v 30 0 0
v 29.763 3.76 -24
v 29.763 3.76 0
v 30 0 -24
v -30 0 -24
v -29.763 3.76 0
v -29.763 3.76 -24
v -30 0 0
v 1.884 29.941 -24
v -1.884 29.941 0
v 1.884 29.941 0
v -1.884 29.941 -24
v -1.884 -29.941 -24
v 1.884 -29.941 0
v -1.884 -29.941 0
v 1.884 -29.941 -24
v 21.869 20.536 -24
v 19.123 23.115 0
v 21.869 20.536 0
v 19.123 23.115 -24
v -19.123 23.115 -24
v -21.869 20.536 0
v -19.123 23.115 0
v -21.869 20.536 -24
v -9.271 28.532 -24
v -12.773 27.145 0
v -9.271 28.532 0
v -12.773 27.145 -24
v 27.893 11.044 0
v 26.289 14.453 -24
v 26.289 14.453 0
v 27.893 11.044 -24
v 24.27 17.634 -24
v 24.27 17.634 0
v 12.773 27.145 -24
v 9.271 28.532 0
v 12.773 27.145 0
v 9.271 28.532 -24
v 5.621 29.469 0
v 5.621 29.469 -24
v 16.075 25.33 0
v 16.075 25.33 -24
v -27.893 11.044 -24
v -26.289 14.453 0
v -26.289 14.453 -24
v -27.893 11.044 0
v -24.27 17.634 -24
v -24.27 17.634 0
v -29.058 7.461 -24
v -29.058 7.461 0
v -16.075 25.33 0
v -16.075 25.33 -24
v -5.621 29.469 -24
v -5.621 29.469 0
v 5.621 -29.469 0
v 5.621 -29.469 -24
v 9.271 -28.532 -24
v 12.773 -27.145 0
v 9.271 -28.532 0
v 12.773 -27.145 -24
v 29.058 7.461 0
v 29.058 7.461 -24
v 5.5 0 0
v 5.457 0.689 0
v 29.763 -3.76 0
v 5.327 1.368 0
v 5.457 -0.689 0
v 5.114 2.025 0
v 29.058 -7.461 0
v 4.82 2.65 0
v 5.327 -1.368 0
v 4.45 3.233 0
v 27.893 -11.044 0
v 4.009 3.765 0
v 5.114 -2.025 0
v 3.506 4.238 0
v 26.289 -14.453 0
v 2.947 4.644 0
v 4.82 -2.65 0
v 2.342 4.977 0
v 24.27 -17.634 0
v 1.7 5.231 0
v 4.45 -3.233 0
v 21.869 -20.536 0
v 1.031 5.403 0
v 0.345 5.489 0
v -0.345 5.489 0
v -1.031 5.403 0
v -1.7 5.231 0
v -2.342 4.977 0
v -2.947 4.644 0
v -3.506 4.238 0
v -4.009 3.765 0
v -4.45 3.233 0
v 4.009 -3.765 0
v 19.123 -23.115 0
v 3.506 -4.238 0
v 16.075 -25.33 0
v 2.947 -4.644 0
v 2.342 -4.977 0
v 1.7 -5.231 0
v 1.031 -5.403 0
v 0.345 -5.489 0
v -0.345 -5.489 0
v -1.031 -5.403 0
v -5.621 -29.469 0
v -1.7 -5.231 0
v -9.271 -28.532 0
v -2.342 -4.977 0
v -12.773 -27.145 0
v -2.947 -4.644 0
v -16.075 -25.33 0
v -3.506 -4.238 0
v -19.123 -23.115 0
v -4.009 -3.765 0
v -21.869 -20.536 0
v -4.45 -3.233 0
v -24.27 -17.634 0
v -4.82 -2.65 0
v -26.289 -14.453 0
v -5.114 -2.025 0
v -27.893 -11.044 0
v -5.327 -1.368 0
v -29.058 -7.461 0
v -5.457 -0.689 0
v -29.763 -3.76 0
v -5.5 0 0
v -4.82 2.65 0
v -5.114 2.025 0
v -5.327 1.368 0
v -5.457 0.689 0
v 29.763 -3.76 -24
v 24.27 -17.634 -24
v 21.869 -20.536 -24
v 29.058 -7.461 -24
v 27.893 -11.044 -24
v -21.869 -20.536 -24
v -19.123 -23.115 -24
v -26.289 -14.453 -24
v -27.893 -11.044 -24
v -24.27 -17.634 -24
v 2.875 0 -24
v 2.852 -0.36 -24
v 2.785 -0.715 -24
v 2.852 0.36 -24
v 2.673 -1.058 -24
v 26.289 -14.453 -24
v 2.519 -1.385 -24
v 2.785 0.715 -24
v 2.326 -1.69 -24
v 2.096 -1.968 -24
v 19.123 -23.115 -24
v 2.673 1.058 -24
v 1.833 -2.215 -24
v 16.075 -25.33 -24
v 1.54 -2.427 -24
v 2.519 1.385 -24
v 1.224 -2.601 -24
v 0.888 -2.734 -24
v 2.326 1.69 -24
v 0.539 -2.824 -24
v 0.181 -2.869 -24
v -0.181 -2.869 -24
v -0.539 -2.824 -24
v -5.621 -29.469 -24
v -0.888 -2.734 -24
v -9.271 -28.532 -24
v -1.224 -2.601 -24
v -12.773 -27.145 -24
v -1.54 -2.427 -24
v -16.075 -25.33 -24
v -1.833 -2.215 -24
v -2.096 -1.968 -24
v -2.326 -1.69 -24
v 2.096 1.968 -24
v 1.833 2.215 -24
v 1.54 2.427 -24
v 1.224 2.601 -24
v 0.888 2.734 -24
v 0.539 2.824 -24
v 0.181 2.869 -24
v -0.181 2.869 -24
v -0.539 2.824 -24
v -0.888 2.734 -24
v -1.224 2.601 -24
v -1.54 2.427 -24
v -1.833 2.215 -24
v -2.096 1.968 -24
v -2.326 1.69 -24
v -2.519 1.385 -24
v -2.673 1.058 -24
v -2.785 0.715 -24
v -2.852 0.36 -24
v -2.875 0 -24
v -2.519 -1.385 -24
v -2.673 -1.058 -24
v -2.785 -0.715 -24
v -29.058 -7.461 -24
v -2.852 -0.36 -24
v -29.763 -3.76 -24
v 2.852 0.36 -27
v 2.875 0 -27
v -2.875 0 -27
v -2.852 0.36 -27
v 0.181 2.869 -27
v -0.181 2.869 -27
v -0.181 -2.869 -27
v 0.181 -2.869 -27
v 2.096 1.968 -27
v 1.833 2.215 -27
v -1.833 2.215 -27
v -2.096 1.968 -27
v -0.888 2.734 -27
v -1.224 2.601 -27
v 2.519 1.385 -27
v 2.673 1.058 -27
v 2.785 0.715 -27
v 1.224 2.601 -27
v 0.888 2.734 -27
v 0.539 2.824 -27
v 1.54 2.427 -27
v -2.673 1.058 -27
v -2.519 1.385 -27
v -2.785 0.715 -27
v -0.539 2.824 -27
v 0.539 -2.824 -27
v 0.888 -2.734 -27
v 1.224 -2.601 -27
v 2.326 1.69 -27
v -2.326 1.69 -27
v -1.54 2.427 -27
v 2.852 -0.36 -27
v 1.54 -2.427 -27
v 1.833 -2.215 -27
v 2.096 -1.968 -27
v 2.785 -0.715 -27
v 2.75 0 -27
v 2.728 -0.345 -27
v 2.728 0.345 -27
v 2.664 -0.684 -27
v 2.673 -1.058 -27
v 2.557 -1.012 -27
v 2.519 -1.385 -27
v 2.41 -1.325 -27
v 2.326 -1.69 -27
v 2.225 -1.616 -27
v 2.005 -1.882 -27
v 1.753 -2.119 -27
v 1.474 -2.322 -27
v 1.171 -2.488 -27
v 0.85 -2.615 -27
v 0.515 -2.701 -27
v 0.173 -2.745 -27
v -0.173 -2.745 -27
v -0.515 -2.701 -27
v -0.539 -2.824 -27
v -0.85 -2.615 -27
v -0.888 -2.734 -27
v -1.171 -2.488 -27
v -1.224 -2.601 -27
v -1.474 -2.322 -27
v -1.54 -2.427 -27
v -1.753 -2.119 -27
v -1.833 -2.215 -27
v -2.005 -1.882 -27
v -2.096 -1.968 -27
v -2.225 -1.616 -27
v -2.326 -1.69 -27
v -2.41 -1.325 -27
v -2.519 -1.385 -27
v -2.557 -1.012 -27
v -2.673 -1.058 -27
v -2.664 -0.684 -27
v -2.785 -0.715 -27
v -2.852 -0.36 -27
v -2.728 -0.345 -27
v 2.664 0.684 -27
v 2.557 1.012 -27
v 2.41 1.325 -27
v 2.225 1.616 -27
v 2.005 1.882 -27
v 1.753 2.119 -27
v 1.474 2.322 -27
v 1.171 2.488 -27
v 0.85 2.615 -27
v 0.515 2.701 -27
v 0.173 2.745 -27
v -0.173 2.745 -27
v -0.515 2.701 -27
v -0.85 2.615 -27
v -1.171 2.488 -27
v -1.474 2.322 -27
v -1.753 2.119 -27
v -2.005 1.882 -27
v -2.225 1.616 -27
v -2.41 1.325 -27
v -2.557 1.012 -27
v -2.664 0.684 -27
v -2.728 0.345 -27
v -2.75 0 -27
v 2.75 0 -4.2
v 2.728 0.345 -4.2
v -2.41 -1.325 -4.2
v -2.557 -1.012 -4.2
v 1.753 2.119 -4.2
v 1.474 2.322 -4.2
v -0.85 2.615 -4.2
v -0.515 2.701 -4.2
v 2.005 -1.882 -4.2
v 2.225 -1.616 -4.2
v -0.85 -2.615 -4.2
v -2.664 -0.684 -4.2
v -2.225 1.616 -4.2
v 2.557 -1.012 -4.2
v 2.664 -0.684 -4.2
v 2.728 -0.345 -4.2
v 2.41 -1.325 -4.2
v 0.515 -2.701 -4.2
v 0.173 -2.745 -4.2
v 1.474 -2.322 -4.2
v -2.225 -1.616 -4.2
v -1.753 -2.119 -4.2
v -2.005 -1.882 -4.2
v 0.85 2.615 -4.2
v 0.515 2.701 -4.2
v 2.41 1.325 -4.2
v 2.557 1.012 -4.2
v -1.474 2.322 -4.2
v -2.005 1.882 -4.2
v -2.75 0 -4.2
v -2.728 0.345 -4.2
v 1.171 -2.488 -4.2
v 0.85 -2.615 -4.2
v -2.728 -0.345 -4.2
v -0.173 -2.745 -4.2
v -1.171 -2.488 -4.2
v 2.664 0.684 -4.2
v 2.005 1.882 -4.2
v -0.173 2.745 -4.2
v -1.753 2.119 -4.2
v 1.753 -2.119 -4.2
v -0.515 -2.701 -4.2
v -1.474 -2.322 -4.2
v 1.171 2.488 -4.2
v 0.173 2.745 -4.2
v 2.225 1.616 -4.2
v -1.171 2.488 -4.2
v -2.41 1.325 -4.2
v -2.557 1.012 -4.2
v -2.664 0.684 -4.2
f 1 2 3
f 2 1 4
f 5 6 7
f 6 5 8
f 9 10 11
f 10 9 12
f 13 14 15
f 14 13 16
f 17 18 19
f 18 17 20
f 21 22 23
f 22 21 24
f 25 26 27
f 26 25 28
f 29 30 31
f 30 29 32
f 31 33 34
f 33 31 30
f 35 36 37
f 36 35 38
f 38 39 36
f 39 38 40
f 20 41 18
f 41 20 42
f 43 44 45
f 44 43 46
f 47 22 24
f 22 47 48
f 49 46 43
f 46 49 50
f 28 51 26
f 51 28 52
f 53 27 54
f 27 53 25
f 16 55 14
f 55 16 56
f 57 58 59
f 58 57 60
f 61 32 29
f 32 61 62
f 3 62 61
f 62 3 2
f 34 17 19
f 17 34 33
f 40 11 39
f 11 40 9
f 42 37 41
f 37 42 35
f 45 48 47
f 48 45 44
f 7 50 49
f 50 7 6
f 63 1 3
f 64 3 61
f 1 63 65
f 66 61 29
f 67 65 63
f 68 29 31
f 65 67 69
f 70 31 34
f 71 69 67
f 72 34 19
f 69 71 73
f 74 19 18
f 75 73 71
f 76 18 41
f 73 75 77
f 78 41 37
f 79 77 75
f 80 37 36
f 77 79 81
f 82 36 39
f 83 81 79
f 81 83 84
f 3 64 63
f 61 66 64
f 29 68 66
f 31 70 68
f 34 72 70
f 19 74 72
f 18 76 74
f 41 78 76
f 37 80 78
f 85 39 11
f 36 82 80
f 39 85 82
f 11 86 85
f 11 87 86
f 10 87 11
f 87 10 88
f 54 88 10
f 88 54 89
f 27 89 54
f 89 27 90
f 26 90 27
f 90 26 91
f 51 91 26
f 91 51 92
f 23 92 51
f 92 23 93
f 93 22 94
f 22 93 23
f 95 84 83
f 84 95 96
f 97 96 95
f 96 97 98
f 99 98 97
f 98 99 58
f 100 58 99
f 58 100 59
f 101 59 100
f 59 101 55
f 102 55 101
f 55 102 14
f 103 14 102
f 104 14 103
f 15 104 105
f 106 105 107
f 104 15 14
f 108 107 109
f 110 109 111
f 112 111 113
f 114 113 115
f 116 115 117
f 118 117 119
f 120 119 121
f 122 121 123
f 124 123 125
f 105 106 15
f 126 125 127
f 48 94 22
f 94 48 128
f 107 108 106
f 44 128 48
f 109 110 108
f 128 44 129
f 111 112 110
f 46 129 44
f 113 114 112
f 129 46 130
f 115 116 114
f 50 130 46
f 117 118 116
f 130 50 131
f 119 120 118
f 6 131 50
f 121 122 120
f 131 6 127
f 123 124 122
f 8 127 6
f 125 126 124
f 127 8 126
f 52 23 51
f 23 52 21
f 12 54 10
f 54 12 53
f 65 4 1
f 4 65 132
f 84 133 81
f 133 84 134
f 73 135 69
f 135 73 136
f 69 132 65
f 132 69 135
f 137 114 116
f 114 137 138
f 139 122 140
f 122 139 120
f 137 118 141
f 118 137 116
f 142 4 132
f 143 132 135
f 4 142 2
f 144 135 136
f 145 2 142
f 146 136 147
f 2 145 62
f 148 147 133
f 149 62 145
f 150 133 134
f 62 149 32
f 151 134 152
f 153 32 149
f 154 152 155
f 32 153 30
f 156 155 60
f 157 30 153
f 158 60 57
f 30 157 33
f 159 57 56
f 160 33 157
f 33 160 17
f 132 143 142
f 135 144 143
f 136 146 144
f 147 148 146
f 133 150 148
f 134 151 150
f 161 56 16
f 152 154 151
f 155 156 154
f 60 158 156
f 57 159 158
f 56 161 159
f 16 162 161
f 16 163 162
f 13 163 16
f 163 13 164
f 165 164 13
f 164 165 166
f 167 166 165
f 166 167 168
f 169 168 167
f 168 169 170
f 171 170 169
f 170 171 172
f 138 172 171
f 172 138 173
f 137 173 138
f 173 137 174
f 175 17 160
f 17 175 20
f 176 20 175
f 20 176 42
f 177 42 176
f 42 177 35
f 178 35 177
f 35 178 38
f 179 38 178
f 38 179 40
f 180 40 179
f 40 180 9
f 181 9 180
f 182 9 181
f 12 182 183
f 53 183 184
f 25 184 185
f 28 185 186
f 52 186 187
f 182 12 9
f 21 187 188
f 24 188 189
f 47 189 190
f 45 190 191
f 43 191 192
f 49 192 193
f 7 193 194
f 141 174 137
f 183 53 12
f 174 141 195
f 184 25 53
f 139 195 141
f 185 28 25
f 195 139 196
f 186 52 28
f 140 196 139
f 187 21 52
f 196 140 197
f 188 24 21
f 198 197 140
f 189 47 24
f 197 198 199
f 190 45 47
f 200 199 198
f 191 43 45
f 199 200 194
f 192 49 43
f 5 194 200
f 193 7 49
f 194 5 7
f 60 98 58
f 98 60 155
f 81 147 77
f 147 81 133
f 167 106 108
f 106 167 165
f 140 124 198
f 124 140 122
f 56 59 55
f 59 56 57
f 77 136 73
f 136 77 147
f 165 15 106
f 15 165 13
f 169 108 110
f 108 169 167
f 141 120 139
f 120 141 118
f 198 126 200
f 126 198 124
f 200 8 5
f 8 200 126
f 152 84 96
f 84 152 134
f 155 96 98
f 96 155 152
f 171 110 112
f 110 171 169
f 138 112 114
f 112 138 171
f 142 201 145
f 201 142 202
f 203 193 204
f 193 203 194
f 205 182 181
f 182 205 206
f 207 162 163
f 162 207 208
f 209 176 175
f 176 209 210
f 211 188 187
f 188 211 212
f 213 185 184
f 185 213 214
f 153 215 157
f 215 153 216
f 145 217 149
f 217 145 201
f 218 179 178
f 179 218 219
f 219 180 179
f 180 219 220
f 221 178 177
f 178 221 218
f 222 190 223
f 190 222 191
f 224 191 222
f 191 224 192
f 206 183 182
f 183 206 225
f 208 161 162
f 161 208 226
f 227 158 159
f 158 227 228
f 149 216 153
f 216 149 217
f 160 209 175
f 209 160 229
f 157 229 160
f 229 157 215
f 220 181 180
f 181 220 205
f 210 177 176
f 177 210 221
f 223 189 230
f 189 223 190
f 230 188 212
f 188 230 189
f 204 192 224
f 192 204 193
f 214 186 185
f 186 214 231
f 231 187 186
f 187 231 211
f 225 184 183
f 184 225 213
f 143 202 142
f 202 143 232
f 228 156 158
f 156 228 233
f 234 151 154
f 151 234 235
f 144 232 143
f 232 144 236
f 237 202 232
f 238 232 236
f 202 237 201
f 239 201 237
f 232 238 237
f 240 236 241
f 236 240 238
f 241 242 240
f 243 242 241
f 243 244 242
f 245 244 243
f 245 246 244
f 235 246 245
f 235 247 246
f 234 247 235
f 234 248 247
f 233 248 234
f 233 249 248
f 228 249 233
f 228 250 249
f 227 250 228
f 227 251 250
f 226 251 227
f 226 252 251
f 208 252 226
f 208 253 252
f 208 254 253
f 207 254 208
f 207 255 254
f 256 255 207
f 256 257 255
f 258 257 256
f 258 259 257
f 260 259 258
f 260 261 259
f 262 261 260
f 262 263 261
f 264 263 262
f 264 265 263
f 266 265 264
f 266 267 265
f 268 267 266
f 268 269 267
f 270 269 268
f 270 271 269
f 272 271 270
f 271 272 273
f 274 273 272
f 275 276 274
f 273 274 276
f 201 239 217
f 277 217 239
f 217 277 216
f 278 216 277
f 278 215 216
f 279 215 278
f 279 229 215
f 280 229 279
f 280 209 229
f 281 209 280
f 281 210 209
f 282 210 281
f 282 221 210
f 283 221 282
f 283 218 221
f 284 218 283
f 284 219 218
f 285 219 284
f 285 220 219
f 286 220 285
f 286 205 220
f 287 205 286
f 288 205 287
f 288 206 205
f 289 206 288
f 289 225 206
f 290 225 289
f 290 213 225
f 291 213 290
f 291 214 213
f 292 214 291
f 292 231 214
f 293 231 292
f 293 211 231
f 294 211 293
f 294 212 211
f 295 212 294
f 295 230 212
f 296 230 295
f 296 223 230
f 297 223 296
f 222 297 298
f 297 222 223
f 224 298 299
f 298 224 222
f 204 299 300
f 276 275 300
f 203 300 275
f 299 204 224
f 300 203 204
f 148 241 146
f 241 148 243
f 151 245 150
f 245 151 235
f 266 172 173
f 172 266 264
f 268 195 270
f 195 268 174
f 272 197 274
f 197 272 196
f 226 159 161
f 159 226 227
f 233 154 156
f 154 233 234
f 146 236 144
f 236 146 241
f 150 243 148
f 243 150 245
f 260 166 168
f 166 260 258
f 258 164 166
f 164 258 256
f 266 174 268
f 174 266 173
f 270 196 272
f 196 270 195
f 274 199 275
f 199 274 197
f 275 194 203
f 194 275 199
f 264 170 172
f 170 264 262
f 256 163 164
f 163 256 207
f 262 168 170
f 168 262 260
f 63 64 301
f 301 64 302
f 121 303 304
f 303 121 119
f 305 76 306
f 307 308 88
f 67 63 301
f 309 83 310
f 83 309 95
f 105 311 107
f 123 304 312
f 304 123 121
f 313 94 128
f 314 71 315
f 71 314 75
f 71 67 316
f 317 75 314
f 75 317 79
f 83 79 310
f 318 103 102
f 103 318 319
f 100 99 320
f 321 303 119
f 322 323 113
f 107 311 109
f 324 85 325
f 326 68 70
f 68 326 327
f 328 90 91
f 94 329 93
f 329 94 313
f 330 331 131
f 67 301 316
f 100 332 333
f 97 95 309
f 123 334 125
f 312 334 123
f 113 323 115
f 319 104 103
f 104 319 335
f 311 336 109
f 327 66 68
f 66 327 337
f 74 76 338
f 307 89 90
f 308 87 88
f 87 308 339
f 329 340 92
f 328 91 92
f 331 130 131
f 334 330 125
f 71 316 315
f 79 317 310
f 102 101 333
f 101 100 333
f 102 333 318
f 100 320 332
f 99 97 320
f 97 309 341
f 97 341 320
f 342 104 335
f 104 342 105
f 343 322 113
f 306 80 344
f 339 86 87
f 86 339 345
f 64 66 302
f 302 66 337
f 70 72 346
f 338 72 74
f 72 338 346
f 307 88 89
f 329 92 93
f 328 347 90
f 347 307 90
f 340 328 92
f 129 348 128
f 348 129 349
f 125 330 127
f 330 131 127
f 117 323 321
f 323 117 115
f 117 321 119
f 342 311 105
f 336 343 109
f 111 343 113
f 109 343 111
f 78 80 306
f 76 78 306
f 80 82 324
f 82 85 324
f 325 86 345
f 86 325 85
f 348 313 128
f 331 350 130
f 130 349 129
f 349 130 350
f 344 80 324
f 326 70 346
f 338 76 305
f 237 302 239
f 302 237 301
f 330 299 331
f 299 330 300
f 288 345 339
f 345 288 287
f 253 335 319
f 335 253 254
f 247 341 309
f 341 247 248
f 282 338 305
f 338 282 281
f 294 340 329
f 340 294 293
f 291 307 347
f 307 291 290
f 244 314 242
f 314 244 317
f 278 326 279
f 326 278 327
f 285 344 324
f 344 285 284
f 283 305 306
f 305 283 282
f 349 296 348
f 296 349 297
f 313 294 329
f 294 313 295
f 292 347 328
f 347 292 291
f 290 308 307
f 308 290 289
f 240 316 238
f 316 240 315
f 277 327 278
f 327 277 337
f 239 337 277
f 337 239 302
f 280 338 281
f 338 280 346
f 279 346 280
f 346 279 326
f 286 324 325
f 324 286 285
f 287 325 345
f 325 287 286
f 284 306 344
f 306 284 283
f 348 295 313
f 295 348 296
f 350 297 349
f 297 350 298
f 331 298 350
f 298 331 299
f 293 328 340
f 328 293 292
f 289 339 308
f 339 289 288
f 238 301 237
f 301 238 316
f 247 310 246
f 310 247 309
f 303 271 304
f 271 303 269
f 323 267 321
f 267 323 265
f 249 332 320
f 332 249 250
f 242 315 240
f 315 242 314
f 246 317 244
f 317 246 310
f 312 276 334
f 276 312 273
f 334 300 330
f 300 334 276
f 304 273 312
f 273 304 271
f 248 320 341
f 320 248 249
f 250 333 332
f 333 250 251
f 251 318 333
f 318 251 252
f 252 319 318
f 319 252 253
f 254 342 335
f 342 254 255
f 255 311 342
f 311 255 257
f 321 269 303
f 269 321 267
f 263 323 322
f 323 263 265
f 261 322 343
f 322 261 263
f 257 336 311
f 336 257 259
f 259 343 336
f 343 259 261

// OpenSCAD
$fn = 50;

difference() {
	union() {
		translate(v = [0, 0, -24.0]) {
			cylinder(h = 24, r = 30.0);
		}
		#translate(v = [0, 0, -27.0]) {
			cylinder(h = 27, r = 2.875);
		}
	}
	union() {
		translate(v = [0, 0, 0]) {
			rotate(a = [0, 0, 0]) {
				difference() {
					union() {
						translate(v = [0, 0, -27.0]) {
							cylinder(h = 27, r = 2.25);
						}
						translate(v = [0, 0, -4.2]) {
							cylinder(h = 4.2, r1 = 2.75, r2 = 5.5);
						}
						translate(v = [0, 0, -27.0]) {
							cylinder(h = 27, r = 2.75);
						}
						translate(v = [0, 0, -27.0]) {
							cylinder(h = 27, r = 2.25);
						}
					}
					union();
				}
			}
		}
	}
}
